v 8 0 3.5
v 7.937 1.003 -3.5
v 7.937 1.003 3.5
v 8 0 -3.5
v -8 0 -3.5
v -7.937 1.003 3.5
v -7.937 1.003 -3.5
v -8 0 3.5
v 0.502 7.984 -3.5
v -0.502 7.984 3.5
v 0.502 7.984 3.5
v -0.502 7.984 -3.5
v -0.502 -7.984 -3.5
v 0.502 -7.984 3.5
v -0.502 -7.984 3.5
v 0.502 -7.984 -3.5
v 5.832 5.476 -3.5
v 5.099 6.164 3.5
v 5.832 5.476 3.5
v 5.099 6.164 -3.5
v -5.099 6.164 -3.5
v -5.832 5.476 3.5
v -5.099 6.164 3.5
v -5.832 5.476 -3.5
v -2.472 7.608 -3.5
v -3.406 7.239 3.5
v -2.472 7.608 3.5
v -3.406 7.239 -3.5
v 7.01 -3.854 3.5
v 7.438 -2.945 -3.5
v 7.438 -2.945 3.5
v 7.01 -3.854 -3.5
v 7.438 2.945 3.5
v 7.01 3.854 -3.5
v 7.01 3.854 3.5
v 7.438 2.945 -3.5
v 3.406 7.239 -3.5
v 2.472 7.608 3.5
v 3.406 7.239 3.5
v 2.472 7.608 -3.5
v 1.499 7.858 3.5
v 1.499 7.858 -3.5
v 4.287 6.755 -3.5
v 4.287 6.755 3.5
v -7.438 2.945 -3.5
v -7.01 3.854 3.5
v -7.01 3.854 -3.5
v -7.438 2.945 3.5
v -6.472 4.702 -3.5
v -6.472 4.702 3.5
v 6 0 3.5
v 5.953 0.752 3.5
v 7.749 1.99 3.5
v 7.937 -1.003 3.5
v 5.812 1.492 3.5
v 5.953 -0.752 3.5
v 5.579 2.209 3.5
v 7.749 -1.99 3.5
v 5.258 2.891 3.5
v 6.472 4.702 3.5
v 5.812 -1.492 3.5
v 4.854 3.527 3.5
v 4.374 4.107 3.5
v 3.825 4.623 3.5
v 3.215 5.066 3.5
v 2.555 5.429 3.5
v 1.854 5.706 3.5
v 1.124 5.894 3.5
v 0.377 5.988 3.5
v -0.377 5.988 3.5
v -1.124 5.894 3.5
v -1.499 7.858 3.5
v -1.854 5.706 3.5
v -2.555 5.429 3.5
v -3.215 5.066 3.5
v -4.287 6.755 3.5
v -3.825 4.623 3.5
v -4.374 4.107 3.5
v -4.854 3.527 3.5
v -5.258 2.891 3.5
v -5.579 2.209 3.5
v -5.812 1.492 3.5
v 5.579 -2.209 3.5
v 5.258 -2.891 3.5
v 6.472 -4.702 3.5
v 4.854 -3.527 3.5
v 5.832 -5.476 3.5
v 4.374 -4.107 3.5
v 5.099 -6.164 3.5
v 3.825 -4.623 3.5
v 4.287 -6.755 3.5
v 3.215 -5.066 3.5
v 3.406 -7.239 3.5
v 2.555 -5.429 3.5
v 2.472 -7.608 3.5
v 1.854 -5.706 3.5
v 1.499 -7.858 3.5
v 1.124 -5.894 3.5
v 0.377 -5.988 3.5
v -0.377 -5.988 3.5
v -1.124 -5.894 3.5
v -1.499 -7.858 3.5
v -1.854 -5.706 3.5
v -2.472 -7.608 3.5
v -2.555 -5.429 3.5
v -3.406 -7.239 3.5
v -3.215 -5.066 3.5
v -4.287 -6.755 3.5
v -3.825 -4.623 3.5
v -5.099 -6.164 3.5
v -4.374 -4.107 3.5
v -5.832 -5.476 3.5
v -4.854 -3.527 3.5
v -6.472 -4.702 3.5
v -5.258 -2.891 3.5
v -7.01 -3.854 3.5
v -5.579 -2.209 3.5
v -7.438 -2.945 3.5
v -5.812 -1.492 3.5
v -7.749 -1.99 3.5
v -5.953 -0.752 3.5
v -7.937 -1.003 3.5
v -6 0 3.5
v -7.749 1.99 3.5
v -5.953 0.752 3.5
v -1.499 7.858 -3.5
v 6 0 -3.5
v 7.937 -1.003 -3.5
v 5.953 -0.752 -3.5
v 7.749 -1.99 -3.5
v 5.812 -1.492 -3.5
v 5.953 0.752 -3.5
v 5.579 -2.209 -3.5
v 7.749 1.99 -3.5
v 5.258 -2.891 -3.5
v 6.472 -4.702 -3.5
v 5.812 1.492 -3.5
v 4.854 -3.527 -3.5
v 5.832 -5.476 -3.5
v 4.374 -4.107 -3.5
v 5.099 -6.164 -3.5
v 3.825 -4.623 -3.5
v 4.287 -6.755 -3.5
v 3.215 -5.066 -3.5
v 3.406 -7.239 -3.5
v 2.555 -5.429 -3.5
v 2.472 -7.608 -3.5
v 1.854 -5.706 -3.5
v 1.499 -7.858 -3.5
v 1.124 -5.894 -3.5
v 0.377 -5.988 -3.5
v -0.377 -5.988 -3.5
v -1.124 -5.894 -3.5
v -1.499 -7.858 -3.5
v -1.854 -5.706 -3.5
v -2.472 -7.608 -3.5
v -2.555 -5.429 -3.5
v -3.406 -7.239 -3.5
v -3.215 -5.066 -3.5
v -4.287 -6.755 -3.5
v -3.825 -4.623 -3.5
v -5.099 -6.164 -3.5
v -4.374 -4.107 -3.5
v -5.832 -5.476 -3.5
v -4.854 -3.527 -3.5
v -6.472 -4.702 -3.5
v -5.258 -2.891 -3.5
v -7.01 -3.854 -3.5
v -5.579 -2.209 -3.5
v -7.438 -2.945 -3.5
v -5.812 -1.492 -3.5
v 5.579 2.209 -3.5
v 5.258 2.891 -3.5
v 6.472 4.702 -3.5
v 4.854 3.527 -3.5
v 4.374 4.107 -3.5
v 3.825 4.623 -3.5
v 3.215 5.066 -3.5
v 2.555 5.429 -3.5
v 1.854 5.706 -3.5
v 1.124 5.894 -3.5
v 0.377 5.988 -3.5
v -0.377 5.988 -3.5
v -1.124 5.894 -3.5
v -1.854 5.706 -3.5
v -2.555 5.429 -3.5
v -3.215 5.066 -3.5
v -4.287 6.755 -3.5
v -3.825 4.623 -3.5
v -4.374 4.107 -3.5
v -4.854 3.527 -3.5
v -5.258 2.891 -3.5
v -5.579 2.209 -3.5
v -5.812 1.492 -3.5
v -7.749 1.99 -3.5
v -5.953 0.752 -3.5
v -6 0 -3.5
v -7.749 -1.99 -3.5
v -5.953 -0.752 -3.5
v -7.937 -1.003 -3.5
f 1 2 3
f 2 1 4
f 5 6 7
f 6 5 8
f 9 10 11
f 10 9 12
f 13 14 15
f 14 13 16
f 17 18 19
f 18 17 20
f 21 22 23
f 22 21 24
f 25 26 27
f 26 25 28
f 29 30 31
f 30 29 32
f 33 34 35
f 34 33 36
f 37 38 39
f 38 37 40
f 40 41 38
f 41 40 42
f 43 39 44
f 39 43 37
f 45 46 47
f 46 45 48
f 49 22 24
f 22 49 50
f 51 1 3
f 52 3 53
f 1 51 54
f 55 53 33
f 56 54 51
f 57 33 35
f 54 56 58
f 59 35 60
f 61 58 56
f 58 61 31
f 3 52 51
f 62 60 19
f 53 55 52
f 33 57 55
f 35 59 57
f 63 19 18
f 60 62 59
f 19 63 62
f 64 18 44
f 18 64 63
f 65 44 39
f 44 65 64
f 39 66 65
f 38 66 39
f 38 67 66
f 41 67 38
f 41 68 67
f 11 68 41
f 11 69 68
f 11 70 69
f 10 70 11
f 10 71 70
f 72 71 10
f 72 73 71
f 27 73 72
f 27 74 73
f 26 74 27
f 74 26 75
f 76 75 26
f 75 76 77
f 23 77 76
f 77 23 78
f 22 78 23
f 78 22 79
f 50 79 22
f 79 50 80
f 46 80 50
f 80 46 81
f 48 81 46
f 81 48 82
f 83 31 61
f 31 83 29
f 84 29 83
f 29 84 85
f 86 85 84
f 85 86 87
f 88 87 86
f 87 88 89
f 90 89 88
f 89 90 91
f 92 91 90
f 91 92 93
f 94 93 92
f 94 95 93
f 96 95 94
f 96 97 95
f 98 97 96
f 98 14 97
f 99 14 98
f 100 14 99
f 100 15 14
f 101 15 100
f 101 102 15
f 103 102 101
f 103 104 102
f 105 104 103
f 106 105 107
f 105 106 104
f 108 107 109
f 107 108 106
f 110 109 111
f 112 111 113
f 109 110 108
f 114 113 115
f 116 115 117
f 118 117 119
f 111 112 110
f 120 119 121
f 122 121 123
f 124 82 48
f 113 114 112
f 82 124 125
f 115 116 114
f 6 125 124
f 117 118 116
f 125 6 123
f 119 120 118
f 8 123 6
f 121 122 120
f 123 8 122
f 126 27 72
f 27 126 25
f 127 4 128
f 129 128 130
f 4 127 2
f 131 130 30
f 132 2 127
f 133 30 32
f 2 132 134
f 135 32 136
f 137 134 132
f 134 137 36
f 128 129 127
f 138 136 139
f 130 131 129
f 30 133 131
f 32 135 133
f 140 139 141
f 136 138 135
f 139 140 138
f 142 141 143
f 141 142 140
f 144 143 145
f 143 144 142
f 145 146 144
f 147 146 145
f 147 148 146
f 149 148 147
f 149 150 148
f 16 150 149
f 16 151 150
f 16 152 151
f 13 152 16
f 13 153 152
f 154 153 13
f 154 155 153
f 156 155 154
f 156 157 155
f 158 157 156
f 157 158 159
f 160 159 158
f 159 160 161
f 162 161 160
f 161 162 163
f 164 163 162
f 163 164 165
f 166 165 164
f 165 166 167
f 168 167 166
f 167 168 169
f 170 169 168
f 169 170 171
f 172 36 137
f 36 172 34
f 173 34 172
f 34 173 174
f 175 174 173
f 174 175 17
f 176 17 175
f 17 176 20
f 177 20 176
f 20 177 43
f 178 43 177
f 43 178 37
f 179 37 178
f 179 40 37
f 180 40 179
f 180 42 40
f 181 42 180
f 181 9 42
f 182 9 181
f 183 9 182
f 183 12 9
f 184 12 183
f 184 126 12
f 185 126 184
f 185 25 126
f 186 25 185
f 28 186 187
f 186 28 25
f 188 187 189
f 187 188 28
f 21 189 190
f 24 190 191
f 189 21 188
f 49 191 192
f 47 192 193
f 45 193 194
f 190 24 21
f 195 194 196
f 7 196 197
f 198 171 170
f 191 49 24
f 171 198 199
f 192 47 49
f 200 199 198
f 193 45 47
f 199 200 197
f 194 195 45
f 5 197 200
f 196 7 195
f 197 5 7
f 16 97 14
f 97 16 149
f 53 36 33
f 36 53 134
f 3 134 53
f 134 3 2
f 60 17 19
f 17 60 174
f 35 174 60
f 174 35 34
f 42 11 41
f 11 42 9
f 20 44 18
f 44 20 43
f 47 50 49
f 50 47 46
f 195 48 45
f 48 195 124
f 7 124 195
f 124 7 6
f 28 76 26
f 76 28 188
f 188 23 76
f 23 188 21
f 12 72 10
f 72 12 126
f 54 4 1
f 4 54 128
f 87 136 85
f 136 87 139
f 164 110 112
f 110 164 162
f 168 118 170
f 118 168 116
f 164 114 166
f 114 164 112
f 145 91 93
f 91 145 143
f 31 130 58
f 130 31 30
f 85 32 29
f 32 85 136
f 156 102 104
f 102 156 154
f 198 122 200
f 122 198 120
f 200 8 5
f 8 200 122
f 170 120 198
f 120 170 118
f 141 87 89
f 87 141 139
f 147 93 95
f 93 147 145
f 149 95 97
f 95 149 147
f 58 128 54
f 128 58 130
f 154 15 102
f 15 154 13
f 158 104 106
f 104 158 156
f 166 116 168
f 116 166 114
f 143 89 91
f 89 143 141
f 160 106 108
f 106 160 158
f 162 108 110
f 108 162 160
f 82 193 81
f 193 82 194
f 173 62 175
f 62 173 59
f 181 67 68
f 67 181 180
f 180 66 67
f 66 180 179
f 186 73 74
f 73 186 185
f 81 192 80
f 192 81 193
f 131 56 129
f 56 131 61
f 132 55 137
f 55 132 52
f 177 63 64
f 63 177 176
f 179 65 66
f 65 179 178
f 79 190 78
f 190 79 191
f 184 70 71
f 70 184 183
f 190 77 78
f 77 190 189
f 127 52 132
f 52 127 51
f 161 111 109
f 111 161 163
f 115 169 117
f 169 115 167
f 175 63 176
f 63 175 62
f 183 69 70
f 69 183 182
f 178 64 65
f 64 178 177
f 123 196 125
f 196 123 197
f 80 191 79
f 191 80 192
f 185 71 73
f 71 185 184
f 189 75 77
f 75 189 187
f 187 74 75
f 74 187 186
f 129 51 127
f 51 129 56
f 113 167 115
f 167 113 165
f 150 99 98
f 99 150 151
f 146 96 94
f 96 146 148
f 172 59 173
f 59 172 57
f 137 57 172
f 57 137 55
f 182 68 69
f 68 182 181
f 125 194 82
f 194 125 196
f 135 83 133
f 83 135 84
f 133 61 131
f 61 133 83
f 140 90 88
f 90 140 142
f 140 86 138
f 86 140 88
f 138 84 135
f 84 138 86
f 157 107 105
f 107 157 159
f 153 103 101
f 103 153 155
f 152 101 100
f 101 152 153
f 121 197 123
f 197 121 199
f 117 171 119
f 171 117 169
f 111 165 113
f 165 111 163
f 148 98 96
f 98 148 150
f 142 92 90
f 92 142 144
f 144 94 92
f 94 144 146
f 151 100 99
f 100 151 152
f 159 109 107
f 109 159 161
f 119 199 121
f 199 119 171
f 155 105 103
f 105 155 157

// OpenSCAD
$fn = 50;


difference() {
	union() {
		translate(v = [0, 0, -3.5000000000]) {
			cylinder(h = 7, r = 8.0000000000);
		}
	}
	union() {
		translate(v = [0, 0, -100.0000000000]) {
			cylinder(h = 200, r = 6);
		}
	}
}
